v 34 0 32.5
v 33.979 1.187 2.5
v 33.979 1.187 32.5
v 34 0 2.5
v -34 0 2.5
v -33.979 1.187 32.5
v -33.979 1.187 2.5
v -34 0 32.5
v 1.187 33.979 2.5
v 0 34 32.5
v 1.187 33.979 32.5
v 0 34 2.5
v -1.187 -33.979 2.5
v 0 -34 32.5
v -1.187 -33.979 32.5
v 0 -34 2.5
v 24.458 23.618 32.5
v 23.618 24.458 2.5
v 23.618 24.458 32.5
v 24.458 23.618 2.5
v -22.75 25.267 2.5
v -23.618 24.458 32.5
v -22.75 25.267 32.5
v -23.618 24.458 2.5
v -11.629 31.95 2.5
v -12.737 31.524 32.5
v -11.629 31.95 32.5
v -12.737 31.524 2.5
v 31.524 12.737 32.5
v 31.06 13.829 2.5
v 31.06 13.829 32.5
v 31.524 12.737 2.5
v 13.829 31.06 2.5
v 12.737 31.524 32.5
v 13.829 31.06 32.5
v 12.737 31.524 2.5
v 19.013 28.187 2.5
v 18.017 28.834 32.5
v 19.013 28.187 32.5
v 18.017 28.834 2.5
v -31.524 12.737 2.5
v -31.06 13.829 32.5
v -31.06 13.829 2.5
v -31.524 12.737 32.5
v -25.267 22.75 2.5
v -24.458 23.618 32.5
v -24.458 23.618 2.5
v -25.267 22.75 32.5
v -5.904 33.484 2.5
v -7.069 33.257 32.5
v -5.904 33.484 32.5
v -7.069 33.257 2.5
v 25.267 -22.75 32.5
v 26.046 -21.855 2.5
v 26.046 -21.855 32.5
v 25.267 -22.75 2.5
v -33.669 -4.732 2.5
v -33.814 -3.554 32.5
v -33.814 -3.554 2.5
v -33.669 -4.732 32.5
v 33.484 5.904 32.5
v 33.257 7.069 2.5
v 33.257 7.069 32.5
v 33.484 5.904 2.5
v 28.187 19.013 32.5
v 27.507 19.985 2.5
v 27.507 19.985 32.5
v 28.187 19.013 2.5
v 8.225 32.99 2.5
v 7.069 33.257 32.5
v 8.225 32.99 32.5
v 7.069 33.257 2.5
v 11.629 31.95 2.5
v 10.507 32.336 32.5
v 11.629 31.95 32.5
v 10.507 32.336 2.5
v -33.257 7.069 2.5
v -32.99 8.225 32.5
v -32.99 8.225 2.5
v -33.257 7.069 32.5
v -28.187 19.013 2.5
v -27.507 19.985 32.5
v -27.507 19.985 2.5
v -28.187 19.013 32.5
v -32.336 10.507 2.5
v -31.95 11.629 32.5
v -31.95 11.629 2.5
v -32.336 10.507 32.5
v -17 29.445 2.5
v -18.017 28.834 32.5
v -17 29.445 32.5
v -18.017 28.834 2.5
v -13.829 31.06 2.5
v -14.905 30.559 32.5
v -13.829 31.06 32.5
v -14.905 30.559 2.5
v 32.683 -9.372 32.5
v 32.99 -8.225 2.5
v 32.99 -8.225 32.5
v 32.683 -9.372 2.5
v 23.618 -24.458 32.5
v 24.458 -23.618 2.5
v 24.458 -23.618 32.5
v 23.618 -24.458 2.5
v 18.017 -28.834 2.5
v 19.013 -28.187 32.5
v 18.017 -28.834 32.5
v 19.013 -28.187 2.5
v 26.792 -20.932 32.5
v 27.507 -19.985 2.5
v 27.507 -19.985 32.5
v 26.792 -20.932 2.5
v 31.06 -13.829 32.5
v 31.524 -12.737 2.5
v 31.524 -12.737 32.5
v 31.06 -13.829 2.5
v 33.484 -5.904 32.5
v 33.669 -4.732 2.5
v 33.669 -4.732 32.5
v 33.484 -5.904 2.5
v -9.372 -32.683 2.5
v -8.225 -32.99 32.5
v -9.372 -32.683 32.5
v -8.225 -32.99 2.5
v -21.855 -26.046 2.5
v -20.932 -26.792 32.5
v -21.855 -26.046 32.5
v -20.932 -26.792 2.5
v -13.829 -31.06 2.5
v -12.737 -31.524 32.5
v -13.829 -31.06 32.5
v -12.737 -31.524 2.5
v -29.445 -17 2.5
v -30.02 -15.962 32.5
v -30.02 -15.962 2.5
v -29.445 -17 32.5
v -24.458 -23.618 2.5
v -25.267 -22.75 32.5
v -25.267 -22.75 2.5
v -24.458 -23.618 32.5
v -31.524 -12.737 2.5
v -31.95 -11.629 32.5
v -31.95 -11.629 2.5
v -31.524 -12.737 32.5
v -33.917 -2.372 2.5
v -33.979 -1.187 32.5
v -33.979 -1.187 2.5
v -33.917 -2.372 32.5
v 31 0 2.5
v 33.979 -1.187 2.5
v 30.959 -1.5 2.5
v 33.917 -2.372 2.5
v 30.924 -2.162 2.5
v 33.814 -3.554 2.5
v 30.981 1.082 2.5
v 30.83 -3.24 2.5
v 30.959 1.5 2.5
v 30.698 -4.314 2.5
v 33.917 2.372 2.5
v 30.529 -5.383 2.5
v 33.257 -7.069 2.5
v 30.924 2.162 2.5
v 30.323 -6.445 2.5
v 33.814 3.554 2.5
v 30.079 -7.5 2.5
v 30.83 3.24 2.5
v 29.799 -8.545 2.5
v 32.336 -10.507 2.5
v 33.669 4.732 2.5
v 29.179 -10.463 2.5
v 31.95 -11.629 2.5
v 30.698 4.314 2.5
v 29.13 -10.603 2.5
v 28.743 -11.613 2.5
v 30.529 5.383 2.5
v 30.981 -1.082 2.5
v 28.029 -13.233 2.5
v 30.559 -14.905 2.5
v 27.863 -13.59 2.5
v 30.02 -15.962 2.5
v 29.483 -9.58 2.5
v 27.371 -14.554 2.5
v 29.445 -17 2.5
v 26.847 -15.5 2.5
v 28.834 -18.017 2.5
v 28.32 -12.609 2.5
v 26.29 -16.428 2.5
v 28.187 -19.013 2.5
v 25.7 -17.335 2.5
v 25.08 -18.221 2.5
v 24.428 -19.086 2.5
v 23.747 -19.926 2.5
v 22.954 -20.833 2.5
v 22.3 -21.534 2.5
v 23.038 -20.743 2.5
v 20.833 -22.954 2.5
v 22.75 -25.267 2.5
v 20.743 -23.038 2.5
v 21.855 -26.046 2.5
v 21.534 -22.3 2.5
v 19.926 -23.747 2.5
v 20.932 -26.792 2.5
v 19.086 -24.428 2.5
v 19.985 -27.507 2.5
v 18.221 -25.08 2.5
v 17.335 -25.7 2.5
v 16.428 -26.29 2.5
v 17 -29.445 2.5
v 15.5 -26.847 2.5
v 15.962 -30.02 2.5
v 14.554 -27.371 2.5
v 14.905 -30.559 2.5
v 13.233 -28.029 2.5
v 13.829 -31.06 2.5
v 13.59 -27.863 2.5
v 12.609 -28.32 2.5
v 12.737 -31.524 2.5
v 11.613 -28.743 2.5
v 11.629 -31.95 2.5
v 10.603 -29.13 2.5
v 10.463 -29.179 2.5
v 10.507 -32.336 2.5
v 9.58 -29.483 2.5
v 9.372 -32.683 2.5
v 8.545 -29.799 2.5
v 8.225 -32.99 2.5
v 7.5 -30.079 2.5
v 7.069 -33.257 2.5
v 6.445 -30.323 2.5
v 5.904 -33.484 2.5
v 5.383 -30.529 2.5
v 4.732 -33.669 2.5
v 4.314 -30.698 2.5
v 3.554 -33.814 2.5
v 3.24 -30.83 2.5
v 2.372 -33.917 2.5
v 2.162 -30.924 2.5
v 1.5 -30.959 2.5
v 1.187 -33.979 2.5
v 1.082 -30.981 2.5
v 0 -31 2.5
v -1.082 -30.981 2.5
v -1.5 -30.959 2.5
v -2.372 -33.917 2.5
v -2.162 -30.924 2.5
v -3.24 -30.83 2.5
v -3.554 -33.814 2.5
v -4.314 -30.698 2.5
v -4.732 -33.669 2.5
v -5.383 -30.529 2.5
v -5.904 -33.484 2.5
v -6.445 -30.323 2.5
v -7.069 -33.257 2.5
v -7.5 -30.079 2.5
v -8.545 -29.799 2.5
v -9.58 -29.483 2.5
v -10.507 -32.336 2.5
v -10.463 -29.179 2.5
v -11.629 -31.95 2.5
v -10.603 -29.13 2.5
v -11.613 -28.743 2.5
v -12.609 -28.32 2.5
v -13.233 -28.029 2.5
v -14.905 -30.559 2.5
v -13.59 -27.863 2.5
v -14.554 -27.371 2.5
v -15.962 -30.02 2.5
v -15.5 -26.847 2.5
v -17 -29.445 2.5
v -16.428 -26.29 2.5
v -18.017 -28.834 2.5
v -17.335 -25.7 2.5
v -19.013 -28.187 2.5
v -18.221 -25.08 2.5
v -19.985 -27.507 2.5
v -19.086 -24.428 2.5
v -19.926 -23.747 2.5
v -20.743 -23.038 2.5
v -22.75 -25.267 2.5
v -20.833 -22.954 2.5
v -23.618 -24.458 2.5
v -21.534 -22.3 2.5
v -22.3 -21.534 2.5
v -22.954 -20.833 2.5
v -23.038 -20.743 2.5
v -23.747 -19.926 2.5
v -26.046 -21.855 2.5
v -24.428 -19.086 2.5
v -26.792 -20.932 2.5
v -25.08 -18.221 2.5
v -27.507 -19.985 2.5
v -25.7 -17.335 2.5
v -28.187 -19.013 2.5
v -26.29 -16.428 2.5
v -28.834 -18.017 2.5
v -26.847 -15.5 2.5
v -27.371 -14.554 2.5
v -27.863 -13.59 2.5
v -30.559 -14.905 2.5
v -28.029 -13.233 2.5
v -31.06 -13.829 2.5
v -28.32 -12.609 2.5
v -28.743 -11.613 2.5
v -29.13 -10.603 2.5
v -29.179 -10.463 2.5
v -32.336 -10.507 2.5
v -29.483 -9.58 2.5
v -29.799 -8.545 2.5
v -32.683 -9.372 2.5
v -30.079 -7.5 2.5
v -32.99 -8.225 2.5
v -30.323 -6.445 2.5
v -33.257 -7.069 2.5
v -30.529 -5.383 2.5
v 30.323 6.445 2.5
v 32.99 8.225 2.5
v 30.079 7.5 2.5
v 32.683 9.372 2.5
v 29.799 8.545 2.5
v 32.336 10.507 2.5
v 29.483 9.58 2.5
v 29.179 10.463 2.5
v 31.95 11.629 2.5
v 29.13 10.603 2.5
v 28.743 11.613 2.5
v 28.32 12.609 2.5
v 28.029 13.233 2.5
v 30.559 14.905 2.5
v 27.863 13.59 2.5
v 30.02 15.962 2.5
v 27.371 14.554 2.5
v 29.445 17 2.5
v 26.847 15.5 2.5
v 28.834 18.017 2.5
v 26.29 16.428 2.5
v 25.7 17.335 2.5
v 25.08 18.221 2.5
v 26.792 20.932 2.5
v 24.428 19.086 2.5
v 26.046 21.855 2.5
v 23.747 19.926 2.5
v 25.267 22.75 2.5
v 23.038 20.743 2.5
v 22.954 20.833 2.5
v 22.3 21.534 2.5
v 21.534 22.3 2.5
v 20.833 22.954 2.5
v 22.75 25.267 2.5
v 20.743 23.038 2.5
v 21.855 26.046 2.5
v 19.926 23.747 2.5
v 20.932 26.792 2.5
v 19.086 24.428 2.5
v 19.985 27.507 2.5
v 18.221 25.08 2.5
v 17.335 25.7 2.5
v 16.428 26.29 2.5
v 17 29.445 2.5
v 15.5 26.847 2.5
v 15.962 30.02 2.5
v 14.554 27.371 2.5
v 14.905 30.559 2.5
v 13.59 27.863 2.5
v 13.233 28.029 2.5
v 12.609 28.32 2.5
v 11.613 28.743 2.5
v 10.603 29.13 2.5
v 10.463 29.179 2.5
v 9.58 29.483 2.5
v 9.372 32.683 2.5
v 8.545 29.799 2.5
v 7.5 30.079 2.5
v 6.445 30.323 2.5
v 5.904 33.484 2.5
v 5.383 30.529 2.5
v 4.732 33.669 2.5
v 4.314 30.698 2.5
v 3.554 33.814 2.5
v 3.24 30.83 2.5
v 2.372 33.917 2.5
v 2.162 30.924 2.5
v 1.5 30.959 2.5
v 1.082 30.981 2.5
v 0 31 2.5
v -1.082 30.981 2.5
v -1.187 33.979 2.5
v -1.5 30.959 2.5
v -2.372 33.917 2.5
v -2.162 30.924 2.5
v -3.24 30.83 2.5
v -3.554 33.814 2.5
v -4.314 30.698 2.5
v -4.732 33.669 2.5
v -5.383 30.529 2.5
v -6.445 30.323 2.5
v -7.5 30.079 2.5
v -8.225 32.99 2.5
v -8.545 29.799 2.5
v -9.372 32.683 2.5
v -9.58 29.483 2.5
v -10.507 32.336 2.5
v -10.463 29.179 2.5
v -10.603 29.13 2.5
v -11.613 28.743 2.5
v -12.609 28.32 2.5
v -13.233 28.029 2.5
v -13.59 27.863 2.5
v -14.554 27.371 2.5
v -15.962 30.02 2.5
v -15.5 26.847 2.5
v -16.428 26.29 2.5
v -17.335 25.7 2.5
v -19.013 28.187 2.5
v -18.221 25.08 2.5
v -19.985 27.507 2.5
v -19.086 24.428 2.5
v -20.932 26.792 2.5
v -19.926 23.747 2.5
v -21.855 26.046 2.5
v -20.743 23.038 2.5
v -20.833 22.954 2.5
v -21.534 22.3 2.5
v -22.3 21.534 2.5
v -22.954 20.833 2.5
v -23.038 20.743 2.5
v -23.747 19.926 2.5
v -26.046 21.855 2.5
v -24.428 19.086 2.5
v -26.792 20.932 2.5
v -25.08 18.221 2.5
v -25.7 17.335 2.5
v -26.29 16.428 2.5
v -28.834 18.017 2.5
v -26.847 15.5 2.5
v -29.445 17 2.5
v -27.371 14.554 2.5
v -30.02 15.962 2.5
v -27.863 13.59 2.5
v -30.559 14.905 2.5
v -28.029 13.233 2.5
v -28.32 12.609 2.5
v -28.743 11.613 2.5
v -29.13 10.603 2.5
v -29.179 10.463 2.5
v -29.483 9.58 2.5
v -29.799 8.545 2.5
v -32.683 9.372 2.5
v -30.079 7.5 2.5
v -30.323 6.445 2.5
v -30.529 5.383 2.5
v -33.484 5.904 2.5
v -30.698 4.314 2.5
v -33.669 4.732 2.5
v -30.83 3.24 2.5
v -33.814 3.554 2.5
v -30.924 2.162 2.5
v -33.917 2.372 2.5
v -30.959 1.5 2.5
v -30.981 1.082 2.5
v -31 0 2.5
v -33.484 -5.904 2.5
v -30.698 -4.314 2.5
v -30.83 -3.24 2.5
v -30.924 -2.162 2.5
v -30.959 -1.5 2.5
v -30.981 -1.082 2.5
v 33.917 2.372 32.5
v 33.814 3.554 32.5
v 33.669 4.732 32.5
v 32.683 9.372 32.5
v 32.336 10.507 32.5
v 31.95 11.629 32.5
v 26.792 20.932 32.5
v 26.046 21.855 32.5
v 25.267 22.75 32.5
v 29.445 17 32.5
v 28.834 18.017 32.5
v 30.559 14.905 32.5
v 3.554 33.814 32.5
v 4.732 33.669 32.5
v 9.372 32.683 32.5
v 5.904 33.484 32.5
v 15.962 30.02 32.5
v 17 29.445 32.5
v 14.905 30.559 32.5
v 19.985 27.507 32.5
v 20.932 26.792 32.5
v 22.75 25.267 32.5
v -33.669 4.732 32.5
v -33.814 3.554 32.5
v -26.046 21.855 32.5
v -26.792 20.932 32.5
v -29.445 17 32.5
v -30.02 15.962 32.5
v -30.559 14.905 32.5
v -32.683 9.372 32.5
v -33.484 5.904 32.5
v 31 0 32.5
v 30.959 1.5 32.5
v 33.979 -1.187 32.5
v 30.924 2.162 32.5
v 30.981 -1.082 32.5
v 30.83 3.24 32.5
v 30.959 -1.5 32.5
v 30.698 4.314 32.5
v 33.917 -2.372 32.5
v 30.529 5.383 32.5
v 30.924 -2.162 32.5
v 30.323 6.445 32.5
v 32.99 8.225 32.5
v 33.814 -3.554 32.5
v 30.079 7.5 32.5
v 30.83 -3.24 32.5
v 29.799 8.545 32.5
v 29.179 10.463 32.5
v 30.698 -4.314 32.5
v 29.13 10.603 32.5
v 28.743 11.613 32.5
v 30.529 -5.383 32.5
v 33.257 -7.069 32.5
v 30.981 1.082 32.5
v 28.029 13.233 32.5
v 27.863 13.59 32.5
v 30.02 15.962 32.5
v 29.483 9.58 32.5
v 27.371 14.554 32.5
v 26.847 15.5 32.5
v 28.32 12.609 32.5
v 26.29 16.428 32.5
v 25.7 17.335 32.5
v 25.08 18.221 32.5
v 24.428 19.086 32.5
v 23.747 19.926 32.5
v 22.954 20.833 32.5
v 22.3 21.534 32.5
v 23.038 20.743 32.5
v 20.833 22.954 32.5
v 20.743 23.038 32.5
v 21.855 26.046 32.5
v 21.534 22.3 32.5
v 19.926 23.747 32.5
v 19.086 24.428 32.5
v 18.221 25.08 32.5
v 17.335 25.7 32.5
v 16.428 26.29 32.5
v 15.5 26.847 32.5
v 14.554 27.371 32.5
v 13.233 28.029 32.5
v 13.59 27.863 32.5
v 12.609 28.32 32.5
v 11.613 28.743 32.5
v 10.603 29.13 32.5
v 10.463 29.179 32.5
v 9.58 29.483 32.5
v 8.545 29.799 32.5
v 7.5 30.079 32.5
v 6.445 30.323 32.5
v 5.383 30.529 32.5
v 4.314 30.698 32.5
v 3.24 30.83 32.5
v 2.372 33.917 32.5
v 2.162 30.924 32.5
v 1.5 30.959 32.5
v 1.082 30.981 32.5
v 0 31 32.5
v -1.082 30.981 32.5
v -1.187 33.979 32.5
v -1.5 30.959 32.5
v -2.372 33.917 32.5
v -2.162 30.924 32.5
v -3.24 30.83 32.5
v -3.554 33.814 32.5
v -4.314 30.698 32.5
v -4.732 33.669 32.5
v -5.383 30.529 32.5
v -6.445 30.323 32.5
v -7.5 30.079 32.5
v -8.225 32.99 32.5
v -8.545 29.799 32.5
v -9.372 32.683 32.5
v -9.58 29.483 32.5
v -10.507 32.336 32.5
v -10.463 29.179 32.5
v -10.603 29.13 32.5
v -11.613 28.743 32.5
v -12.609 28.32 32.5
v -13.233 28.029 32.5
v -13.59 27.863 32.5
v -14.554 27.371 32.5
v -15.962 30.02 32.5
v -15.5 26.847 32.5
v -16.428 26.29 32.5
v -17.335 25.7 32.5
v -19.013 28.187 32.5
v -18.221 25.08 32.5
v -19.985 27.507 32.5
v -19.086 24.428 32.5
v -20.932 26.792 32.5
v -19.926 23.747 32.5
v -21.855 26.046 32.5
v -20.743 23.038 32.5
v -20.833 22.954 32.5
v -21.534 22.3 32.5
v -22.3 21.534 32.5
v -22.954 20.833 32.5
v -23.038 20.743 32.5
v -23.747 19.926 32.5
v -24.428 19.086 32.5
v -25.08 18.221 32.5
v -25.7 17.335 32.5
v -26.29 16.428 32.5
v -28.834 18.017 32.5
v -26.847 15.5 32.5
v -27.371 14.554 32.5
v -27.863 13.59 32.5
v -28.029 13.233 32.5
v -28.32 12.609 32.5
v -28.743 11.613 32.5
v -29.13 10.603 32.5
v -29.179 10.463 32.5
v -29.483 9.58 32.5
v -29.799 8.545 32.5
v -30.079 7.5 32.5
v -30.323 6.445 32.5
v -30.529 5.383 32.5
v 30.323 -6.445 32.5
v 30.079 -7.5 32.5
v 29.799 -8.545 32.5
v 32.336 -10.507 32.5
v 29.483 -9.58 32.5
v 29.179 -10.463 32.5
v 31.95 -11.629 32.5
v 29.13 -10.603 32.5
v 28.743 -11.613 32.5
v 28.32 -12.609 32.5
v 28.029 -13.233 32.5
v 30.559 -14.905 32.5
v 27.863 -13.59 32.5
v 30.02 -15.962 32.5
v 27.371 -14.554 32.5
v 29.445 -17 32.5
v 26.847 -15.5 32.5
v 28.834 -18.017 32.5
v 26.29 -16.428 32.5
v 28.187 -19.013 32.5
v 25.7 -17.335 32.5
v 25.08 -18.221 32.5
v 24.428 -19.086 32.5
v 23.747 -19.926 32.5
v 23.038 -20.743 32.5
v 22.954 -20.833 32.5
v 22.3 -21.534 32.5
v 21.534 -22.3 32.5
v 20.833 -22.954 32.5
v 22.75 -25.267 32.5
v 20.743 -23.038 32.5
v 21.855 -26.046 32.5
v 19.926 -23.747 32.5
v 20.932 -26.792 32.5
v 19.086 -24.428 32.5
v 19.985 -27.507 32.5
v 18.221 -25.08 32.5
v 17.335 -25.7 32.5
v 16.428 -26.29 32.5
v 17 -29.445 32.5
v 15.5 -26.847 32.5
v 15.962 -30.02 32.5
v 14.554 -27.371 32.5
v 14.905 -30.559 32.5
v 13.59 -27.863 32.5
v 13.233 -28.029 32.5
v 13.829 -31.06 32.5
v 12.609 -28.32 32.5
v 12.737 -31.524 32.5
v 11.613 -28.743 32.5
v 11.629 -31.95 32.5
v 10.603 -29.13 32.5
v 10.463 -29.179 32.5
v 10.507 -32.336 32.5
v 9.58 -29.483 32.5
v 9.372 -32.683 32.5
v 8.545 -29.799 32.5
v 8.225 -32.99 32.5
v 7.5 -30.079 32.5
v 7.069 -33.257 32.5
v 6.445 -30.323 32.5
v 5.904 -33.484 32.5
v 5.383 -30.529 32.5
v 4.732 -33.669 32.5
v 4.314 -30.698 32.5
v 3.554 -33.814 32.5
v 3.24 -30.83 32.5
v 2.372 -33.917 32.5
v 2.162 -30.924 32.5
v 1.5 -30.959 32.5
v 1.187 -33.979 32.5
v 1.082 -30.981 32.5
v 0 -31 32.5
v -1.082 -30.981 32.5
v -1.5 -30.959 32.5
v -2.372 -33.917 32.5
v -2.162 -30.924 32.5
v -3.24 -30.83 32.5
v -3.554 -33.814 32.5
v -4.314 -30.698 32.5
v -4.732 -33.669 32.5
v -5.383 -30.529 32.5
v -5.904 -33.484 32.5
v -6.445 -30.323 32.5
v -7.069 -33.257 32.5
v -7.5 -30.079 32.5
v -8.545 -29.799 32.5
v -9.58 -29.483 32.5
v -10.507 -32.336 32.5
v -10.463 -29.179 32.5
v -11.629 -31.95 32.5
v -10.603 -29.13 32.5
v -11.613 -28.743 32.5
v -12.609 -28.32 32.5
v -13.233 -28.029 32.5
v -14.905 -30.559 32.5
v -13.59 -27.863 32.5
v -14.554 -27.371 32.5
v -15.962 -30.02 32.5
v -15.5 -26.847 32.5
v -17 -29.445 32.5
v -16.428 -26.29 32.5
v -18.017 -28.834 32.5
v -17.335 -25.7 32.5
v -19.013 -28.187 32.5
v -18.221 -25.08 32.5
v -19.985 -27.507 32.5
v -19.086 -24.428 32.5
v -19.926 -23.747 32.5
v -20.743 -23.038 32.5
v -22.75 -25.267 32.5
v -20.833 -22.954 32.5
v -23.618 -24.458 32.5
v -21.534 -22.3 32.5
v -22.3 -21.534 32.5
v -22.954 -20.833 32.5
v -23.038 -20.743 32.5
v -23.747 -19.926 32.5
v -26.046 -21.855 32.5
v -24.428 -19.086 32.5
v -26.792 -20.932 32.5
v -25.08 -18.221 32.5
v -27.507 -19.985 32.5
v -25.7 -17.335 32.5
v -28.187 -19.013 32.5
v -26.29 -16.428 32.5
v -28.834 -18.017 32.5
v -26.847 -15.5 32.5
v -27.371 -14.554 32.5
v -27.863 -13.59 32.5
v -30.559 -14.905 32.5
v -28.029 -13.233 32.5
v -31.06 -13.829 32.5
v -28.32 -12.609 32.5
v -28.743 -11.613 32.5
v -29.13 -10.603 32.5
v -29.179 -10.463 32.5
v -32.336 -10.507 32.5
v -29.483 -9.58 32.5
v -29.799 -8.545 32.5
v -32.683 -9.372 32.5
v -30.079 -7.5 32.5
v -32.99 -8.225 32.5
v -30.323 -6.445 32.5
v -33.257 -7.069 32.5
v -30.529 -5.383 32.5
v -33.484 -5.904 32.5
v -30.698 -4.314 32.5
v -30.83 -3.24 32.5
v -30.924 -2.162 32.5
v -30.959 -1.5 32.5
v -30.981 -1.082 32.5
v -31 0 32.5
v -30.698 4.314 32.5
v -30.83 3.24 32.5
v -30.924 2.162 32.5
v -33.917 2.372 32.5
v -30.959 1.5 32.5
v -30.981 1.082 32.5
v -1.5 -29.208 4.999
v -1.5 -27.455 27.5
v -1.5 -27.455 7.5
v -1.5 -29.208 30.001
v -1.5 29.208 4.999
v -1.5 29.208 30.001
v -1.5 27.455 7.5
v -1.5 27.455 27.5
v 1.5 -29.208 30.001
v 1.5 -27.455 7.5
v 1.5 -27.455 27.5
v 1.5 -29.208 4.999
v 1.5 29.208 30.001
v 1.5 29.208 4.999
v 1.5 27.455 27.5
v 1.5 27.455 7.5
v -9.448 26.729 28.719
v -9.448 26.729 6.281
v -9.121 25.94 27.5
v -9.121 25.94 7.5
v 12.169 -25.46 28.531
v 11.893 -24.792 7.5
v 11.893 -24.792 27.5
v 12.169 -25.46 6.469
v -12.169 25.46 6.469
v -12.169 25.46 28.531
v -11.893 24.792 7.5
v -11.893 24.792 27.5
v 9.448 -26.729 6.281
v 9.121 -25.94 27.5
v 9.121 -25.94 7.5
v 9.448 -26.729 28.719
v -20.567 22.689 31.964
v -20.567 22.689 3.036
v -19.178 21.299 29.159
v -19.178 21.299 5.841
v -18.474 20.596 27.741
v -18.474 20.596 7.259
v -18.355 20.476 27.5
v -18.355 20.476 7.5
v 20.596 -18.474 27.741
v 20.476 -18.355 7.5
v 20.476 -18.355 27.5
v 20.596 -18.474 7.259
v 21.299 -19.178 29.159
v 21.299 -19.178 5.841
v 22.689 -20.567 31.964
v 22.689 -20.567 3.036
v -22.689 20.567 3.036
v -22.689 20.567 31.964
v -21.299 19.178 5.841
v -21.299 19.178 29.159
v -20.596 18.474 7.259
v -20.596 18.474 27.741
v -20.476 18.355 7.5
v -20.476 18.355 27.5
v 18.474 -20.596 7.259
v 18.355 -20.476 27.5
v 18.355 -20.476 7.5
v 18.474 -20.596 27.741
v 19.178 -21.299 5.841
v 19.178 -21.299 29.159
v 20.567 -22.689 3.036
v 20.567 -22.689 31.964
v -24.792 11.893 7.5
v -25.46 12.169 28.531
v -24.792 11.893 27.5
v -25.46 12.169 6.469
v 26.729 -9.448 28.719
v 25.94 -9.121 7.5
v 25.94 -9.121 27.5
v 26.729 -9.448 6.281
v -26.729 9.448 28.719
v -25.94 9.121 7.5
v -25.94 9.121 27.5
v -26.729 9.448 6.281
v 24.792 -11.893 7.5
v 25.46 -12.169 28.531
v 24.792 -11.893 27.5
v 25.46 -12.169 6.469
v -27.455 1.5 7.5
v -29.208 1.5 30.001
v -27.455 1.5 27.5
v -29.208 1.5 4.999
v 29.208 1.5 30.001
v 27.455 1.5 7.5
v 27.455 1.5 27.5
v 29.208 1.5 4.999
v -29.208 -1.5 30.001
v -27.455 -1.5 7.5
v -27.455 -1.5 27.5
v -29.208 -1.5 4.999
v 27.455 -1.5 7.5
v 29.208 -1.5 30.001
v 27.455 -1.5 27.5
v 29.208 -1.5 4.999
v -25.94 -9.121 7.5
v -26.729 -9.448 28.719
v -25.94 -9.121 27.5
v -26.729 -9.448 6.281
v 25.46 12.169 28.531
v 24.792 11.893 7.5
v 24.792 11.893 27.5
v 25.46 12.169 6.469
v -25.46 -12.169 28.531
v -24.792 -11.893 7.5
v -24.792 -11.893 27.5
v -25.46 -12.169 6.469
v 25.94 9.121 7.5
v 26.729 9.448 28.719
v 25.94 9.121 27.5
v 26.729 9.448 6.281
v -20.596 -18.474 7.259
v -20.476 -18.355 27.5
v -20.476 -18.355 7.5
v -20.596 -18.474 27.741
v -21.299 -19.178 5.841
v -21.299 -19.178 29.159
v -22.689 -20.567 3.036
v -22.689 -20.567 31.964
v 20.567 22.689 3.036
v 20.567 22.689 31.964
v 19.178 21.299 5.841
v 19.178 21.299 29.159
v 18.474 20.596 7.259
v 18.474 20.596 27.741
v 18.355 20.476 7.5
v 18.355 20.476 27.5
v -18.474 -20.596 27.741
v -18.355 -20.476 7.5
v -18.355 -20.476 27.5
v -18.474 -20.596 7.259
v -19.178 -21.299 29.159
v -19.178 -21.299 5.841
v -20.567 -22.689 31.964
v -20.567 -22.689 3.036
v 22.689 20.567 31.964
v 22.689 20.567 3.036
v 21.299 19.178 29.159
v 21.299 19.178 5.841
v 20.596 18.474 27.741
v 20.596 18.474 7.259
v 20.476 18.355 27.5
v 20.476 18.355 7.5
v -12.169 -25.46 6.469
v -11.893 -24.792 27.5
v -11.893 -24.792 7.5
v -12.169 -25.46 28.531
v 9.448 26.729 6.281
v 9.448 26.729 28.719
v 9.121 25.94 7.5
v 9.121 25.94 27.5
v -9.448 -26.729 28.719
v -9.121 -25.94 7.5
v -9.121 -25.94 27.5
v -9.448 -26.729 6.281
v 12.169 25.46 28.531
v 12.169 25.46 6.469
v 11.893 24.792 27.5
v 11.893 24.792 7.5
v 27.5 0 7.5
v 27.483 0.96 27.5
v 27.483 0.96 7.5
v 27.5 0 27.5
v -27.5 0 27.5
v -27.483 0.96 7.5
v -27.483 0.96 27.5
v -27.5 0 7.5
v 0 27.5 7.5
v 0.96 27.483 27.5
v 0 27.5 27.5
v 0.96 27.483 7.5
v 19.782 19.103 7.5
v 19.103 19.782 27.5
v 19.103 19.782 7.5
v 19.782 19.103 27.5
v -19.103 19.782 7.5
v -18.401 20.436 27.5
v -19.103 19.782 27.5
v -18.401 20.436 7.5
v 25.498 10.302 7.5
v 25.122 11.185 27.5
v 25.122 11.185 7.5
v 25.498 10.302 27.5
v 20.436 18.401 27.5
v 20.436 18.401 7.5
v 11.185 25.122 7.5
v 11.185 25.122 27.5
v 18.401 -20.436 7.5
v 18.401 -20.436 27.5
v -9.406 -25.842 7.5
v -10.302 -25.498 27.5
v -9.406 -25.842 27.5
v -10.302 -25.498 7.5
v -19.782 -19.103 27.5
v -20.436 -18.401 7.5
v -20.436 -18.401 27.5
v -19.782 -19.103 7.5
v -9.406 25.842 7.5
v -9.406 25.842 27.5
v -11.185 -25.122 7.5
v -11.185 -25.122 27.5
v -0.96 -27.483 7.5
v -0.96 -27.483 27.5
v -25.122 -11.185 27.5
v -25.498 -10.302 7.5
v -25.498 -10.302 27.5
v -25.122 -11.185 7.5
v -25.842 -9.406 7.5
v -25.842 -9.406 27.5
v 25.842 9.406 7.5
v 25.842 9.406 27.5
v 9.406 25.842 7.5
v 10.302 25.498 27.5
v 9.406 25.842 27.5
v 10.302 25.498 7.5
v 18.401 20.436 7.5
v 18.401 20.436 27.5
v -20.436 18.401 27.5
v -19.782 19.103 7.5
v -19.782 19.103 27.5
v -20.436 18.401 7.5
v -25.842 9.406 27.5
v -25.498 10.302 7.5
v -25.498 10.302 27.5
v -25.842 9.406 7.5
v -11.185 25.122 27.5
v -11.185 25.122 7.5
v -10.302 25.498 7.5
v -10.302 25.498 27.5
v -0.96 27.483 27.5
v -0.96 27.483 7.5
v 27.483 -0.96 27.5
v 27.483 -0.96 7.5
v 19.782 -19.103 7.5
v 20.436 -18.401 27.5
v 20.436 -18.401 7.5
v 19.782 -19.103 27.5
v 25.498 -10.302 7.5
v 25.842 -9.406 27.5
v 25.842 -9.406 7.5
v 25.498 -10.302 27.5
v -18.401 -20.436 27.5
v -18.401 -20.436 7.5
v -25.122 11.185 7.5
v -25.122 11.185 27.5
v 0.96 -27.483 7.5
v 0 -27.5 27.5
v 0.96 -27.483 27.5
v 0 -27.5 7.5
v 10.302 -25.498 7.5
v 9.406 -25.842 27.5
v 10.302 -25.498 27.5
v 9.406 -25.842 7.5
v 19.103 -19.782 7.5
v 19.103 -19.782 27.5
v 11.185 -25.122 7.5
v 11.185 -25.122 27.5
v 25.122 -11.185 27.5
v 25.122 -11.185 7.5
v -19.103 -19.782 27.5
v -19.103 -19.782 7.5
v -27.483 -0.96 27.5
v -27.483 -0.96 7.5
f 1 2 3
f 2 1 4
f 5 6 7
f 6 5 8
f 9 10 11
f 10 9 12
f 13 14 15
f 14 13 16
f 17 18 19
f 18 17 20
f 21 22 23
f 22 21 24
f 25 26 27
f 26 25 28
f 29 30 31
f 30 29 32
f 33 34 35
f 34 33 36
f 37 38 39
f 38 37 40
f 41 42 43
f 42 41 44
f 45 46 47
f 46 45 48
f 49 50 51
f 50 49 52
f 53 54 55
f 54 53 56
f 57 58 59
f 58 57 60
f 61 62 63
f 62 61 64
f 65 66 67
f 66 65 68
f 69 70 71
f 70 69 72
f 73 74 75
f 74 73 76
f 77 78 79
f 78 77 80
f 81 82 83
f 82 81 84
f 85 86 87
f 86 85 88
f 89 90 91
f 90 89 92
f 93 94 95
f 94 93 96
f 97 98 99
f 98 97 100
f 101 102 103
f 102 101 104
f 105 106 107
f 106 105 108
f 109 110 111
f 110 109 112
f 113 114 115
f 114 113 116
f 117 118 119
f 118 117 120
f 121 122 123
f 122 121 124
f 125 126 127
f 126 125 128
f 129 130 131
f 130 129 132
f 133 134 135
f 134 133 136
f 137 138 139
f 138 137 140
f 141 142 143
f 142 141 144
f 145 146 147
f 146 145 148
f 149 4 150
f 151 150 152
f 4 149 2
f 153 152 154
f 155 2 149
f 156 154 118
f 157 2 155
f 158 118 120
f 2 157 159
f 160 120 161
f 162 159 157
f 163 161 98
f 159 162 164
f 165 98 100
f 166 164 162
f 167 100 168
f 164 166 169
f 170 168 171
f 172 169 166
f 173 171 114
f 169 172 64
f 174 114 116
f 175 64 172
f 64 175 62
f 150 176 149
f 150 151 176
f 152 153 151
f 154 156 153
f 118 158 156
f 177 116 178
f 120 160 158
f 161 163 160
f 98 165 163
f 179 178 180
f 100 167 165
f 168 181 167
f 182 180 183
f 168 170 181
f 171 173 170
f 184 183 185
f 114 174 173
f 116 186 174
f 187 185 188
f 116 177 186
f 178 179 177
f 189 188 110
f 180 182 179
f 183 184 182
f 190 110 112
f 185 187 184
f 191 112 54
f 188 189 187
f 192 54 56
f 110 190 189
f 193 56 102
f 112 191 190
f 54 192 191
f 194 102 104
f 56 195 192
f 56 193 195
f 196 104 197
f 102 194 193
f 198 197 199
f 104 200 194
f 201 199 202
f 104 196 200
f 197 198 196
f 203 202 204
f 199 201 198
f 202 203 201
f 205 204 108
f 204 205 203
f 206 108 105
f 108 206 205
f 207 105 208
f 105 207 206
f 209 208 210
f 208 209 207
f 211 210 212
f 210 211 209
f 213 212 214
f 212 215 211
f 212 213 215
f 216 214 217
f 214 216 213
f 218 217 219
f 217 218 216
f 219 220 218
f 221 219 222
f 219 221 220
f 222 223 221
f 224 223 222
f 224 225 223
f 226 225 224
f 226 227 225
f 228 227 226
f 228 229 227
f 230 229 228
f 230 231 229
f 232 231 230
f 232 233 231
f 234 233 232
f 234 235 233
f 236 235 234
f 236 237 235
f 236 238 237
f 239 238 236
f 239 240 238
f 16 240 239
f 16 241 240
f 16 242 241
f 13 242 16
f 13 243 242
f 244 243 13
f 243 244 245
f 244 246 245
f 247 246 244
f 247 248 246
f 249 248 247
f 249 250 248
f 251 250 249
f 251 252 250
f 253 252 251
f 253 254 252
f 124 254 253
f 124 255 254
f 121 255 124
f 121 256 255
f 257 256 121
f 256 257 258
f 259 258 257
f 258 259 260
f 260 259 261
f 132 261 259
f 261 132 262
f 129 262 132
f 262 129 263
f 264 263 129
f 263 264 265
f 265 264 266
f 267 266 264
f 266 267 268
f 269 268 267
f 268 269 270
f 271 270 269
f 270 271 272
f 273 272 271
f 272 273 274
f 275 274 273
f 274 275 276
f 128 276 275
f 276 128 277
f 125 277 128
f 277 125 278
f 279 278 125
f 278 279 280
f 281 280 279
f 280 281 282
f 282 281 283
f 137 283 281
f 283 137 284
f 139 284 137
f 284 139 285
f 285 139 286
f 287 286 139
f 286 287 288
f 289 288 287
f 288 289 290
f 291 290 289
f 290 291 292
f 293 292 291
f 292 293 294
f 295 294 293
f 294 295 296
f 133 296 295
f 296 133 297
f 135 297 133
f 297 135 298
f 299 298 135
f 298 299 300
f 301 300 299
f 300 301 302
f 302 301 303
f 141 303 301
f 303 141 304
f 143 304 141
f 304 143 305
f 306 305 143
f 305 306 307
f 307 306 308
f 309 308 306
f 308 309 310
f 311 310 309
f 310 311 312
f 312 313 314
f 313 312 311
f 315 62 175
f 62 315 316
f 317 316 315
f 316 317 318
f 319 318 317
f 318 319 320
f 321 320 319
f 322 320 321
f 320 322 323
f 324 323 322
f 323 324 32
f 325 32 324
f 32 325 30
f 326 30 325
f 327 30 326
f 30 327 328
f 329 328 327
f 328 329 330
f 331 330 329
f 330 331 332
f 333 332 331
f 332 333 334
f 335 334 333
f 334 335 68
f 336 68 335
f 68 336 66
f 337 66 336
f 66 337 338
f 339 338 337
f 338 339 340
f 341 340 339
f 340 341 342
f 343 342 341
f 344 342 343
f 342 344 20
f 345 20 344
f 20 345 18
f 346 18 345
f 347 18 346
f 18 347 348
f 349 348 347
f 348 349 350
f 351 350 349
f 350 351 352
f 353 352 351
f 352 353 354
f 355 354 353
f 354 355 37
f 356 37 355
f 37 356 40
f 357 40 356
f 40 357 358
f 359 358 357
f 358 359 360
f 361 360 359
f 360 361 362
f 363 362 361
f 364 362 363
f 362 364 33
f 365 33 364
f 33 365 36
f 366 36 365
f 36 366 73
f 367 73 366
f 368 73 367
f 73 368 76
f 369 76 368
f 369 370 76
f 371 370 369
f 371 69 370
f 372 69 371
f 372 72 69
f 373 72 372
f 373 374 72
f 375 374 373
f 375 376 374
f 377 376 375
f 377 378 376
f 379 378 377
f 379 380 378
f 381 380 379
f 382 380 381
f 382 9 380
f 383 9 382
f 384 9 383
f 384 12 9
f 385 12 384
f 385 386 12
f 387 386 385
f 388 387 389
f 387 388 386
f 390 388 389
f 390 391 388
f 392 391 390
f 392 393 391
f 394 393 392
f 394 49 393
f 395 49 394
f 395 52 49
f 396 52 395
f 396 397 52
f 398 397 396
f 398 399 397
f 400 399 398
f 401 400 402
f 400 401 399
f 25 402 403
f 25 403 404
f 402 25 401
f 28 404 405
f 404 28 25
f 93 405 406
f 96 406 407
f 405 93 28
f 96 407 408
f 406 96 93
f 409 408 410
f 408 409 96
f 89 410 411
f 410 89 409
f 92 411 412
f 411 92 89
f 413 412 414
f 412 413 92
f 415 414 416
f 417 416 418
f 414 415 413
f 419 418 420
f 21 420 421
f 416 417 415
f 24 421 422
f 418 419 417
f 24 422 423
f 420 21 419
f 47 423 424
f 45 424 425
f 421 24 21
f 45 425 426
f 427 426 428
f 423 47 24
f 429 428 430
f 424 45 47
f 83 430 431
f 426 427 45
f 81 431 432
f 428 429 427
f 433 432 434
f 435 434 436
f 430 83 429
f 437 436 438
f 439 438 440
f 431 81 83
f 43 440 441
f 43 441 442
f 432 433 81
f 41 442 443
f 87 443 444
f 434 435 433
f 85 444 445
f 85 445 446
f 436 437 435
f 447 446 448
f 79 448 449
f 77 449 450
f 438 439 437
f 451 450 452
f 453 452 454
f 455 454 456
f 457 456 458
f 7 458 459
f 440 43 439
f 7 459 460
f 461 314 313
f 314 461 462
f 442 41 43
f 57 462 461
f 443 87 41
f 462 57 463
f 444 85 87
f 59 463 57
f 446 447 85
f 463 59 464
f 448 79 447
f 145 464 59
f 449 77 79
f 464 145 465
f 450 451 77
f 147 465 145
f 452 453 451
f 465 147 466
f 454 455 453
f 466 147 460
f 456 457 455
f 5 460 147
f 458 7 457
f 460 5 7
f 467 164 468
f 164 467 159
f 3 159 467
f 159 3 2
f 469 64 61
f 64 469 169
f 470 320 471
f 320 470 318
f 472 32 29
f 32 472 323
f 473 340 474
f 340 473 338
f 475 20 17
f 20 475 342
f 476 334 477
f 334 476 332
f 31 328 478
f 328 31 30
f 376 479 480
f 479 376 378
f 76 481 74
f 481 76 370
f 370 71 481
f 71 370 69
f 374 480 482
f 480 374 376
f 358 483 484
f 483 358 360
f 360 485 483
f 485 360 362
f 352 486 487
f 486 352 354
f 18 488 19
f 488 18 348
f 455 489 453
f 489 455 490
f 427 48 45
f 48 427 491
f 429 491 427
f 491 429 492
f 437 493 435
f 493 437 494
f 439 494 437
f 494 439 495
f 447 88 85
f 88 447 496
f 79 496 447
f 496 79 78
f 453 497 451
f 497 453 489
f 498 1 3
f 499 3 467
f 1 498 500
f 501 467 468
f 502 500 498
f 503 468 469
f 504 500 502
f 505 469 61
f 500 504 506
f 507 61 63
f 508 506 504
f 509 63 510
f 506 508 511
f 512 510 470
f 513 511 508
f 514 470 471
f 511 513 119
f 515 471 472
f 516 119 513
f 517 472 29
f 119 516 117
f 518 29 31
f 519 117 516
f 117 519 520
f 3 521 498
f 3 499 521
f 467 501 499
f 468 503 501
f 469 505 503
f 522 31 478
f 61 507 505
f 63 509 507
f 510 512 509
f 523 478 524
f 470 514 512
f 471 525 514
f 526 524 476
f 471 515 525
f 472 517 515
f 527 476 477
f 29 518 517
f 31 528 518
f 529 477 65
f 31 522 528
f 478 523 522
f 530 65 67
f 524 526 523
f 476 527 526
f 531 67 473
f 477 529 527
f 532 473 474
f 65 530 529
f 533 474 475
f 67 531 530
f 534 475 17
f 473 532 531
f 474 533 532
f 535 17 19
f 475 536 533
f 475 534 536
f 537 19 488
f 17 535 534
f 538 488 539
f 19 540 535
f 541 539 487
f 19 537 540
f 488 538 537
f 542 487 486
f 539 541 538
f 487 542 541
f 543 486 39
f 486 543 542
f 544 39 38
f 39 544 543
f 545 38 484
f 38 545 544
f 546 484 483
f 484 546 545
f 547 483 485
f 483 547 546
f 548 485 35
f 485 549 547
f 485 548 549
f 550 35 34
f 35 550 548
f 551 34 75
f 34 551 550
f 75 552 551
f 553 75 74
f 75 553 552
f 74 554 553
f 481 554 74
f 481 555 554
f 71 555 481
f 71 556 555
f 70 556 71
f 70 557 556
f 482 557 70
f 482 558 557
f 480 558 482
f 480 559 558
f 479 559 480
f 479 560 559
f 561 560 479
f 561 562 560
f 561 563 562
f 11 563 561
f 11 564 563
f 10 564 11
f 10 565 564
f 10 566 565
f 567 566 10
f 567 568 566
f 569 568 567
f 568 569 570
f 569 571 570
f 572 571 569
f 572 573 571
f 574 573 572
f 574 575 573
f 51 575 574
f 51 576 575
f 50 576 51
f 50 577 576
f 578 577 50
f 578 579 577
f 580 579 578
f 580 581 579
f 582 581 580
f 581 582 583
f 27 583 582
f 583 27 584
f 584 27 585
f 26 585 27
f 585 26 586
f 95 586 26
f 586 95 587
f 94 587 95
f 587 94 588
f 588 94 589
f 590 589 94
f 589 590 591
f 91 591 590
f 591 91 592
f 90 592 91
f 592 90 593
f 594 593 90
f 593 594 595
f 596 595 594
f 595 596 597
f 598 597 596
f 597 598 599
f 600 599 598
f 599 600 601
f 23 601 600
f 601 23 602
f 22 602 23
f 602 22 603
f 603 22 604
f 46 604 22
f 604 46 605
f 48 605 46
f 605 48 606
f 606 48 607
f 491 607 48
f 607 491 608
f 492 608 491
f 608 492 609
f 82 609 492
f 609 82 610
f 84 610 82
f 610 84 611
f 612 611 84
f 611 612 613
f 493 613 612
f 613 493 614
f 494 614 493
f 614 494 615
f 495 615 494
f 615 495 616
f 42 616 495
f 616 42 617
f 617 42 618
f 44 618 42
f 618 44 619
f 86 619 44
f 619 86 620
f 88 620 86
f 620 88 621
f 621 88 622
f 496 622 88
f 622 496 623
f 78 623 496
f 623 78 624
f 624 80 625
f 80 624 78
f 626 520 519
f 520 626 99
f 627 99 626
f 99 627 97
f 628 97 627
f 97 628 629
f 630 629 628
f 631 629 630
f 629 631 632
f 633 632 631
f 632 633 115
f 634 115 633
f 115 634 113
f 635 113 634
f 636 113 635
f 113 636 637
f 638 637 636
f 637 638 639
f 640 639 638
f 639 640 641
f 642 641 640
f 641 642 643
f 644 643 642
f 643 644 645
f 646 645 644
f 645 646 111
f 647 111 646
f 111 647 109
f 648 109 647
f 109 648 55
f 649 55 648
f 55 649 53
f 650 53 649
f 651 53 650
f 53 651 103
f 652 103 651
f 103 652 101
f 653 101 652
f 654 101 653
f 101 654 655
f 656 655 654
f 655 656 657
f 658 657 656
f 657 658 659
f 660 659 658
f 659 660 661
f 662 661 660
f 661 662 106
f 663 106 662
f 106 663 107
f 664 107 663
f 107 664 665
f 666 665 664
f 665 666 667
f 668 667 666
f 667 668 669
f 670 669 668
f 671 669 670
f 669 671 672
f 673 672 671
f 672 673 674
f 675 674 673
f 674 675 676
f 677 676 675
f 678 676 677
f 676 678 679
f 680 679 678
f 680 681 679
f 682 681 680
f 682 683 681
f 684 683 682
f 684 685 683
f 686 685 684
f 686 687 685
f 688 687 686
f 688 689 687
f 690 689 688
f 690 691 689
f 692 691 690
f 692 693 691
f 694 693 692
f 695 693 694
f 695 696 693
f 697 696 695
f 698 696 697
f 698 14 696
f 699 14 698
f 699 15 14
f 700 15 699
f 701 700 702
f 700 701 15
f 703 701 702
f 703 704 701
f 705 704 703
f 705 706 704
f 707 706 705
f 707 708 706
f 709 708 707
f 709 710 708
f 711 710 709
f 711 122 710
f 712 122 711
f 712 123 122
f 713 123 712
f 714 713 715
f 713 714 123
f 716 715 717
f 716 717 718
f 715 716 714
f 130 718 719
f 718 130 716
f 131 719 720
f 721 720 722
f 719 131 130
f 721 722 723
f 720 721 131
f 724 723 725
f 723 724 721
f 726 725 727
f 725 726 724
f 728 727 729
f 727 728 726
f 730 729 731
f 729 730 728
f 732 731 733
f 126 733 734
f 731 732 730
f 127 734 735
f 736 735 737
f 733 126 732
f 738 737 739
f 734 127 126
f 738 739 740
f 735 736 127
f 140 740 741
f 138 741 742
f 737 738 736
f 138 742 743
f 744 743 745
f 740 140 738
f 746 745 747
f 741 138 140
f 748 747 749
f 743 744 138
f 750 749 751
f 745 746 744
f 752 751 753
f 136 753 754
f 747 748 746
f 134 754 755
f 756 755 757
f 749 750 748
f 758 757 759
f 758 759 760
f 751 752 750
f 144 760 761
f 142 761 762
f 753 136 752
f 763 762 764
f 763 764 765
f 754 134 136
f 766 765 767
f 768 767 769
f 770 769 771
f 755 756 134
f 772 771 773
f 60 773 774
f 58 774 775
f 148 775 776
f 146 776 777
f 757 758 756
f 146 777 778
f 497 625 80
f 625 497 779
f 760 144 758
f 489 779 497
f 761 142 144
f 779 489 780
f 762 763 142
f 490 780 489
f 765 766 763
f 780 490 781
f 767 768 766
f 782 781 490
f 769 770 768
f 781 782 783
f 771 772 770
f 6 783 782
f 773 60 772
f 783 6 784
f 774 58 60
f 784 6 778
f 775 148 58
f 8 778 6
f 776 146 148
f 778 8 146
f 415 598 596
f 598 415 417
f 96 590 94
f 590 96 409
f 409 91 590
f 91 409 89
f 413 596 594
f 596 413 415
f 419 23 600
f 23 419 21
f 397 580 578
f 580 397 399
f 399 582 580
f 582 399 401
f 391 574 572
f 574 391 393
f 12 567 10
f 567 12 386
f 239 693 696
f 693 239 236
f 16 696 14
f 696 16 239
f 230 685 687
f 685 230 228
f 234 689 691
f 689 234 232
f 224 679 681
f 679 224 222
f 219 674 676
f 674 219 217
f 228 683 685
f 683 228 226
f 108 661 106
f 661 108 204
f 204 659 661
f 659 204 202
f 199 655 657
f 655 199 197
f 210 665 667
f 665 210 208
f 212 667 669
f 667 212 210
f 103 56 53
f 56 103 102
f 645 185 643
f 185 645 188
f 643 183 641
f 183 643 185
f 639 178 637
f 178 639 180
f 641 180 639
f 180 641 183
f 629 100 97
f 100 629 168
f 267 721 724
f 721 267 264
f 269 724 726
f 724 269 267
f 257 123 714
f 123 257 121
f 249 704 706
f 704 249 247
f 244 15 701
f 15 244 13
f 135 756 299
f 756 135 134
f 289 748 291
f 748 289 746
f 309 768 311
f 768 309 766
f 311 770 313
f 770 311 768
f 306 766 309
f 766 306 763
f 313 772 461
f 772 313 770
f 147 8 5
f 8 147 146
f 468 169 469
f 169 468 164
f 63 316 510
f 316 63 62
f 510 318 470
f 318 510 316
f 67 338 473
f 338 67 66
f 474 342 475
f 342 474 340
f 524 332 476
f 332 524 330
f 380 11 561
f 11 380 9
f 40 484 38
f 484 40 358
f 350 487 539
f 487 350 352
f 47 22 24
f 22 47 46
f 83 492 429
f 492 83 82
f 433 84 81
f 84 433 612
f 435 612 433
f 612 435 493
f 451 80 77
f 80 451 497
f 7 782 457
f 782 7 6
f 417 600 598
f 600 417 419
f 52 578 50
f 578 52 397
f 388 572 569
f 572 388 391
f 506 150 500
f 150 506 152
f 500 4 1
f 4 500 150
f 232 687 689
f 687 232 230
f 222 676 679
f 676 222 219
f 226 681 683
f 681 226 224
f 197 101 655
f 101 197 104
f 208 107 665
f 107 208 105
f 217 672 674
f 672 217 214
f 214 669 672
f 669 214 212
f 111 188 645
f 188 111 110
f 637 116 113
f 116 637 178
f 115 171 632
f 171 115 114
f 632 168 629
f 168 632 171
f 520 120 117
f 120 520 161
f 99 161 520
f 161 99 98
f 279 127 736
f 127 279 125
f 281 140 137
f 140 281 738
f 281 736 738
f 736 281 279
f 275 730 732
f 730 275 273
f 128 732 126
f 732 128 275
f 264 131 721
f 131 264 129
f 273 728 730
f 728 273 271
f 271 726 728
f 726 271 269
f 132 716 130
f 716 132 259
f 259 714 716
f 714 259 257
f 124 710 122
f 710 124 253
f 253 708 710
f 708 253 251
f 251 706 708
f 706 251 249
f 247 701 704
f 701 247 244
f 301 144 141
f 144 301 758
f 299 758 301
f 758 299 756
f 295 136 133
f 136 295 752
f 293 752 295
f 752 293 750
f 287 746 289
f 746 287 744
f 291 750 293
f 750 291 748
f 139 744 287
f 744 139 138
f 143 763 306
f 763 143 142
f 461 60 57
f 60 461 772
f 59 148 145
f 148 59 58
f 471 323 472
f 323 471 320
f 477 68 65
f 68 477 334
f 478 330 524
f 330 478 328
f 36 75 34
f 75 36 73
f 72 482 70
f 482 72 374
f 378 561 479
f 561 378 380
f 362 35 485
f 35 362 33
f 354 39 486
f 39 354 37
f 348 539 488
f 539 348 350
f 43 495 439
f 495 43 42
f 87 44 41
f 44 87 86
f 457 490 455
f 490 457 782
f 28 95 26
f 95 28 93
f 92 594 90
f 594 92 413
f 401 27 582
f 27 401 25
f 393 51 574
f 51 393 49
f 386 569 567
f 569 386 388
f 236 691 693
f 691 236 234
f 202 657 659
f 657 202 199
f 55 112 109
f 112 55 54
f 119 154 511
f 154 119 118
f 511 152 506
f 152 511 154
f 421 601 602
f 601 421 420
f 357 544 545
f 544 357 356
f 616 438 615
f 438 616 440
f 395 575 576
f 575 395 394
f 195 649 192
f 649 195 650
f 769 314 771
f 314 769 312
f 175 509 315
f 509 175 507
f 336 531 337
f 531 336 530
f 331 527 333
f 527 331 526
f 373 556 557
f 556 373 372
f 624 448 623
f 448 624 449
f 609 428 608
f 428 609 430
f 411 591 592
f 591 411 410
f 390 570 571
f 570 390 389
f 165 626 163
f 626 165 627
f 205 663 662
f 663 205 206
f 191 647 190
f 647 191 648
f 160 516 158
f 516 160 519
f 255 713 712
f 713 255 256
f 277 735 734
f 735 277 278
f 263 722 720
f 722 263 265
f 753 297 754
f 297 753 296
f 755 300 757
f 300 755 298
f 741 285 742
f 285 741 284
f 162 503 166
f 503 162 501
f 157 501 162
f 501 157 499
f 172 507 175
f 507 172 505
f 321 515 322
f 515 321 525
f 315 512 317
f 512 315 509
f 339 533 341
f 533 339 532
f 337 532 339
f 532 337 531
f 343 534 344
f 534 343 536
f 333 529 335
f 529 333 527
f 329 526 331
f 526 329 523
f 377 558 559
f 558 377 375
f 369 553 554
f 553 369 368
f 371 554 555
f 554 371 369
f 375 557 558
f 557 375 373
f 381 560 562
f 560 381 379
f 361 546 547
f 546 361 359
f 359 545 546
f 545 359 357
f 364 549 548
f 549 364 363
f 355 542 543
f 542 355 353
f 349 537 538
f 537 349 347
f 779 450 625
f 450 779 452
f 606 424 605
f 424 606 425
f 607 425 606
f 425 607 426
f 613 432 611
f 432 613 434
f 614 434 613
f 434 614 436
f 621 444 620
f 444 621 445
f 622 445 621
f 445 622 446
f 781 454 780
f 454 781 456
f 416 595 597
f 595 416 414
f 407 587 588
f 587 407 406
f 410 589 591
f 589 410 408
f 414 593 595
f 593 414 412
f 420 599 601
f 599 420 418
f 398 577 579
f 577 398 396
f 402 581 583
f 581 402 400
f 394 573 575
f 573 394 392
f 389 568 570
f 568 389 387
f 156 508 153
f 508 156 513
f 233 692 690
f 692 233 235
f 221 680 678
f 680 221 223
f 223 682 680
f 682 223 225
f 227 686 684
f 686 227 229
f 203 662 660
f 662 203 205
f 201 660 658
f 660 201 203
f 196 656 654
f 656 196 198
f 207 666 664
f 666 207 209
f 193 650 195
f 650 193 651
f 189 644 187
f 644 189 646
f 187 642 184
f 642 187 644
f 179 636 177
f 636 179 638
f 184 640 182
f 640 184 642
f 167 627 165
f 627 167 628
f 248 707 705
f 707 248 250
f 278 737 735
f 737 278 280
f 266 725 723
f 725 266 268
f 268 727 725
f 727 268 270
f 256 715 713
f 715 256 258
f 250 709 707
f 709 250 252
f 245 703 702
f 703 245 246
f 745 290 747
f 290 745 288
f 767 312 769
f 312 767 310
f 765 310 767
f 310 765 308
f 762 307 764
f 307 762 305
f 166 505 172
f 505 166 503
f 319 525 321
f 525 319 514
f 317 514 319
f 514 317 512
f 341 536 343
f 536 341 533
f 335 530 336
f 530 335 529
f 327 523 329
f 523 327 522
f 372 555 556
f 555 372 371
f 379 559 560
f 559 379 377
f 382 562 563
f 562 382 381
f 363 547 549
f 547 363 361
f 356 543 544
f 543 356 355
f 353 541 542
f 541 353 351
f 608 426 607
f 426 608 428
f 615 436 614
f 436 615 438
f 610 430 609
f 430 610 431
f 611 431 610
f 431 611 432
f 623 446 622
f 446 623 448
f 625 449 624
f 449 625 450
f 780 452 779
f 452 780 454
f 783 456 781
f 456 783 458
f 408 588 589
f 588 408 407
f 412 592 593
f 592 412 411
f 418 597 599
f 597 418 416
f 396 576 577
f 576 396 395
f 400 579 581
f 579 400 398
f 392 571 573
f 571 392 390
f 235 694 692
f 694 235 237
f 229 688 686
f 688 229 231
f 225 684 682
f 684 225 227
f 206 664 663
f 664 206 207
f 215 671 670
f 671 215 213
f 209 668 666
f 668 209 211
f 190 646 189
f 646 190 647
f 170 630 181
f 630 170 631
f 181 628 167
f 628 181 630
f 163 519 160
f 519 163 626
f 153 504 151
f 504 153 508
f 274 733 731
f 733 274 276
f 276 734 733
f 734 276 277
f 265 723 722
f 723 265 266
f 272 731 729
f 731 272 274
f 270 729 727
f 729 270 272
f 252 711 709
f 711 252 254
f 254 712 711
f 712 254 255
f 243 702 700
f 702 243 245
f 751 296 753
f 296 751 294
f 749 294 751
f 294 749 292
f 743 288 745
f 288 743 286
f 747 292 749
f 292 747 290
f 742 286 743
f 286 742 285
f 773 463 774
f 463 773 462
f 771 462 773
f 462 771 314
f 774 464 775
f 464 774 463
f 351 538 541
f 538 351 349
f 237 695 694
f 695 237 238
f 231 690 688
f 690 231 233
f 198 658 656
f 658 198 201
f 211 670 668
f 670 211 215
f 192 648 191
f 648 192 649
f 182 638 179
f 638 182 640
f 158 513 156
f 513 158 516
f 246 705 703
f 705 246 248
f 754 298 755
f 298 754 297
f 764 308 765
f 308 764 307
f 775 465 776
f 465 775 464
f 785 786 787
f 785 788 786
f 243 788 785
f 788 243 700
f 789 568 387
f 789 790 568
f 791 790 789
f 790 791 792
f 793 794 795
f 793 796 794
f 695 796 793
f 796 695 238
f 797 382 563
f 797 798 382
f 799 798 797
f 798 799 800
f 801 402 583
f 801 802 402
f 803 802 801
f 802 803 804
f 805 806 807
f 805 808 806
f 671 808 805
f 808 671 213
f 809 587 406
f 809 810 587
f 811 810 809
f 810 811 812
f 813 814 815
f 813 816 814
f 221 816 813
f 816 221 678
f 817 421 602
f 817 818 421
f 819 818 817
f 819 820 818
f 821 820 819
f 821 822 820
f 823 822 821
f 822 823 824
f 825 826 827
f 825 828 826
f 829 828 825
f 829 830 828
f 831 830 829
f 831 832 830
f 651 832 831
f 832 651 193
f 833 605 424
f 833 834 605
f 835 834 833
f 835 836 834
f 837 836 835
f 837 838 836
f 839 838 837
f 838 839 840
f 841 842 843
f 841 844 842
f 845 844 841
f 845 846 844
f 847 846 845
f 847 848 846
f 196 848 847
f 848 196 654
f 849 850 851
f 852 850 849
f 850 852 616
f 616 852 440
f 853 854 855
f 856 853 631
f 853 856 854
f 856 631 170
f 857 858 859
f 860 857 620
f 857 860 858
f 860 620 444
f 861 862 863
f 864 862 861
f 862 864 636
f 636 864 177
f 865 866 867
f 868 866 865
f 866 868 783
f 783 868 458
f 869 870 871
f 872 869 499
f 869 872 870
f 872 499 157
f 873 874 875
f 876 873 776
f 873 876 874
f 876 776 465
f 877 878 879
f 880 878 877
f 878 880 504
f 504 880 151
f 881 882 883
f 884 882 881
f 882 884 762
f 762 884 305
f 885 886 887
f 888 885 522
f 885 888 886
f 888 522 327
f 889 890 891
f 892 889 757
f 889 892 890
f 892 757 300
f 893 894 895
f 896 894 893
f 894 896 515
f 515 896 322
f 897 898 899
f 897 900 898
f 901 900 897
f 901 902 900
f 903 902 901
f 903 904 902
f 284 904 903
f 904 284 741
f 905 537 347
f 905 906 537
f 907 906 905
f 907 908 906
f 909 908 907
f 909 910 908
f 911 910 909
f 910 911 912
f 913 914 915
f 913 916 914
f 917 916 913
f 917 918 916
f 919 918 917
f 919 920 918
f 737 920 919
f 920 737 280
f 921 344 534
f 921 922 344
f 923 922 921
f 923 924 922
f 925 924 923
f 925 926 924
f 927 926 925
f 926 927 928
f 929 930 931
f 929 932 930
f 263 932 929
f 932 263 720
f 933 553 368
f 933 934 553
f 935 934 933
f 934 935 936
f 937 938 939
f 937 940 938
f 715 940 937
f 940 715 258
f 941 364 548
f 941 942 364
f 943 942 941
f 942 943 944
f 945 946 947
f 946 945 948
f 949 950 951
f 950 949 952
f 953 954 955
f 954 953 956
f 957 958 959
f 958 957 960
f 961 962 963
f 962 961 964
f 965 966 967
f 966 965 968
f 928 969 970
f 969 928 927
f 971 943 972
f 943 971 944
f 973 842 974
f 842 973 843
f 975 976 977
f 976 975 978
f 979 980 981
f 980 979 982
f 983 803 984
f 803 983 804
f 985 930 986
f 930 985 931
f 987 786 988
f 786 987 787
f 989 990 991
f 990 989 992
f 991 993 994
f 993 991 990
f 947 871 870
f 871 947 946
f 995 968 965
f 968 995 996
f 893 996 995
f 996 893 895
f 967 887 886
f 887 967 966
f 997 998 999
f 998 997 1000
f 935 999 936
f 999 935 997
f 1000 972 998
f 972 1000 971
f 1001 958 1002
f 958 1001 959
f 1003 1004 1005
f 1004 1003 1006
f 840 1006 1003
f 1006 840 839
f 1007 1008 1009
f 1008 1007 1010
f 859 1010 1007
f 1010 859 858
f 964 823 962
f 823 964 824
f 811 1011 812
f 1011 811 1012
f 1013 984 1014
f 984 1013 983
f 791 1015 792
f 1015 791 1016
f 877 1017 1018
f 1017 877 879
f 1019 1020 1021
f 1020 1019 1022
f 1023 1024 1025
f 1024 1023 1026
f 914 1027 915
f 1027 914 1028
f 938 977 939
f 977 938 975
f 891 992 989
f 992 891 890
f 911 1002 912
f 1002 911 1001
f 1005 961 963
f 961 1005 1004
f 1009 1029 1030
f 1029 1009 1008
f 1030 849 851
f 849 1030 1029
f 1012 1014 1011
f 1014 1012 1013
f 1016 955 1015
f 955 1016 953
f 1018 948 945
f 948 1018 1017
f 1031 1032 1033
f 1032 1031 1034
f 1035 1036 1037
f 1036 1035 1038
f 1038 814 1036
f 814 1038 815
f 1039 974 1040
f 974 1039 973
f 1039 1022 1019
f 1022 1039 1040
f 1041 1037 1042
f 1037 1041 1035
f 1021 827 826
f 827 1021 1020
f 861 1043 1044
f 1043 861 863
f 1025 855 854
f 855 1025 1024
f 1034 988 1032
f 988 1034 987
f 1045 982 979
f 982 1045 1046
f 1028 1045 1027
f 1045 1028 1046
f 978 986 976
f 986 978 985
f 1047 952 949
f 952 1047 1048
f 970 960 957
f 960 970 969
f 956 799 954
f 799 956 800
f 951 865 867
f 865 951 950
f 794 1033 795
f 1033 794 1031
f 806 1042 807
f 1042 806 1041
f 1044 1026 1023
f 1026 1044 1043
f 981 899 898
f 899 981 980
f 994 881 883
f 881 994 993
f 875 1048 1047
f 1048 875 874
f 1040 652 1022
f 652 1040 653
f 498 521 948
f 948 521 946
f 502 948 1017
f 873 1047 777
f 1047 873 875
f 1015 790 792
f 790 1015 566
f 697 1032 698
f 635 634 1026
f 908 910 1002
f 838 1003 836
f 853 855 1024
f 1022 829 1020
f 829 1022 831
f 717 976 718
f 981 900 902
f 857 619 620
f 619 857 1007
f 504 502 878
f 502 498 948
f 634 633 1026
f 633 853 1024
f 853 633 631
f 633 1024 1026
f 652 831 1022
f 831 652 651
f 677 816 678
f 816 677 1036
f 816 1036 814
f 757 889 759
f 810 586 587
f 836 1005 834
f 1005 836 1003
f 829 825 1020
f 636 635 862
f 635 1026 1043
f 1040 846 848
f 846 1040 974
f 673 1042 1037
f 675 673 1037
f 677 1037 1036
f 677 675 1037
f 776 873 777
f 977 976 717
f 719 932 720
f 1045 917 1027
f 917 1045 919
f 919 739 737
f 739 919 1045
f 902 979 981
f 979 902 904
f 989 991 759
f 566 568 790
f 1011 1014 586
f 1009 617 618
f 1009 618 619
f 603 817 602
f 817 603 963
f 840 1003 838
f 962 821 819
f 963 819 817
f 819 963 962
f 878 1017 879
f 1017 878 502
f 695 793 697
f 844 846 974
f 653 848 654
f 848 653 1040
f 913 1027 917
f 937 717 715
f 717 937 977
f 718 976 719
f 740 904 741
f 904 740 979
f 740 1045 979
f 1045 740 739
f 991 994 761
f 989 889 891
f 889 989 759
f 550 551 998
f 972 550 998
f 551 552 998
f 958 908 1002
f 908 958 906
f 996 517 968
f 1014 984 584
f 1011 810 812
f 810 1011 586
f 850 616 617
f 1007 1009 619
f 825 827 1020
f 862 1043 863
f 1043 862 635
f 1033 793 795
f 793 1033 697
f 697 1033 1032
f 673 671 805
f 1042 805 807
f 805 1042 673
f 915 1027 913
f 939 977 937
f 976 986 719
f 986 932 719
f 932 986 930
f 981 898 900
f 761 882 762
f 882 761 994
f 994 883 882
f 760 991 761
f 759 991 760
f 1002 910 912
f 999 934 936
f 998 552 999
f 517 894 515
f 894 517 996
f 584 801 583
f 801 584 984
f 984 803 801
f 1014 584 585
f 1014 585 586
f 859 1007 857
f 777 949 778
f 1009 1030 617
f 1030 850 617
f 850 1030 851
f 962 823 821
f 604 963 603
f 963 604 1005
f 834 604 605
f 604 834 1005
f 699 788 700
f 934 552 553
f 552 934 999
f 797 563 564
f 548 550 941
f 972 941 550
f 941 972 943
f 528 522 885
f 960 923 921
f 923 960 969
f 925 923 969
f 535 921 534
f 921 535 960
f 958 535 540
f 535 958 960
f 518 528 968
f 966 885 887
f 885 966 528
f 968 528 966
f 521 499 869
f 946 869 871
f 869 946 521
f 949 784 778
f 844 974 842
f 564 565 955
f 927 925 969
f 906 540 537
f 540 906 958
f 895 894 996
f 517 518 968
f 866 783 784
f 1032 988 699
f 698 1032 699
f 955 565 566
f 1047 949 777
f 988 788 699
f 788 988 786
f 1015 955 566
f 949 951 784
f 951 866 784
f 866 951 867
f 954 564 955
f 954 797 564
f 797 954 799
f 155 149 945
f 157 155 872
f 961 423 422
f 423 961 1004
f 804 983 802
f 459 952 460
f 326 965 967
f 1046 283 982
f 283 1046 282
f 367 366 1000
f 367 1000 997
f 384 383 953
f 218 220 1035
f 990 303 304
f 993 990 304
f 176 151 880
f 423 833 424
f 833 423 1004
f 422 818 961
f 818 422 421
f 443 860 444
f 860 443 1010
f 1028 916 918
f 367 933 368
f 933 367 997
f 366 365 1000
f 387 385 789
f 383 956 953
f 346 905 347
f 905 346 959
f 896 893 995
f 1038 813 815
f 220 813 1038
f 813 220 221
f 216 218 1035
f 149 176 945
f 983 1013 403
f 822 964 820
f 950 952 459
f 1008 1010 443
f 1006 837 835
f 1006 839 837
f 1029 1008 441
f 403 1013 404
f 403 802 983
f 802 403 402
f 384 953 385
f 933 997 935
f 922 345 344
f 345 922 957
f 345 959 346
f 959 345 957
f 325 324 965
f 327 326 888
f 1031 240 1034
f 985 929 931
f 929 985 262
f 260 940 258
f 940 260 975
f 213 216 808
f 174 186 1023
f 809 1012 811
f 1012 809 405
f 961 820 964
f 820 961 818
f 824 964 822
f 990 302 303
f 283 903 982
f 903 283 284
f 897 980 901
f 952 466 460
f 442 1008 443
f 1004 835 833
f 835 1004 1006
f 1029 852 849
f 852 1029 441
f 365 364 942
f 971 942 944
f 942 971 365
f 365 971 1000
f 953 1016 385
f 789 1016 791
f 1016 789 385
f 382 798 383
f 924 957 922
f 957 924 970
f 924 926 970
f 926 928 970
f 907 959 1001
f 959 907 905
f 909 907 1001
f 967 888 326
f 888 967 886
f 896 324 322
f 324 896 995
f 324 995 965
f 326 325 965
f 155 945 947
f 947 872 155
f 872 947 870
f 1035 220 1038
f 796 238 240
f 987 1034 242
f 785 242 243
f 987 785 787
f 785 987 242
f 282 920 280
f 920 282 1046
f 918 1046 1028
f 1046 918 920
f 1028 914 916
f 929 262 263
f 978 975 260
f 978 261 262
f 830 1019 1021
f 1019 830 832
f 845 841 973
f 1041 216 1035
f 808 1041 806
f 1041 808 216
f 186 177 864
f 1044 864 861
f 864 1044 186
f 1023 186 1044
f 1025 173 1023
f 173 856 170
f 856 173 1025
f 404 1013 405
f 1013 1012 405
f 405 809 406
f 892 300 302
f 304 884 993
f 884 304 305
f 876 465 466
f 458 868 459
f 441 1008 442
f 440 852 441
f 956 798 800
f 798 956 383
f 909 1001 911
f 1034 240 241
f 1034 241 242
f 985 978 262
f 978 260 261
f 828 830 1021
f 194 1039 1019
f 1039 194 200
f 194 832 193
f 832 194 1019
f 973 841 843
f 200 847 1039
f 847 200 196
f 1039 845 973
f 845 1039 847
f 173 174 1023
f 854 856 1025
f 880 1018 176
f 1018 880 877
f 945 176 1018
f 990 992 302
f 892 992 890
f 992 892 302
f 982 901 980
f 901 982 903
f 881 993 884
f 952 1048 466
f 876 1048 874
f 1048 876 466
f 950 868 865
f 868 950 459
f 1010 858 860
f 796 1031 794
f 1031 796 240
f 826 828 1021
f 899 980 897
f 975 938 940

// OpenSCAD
/////////////////////////////////////////////////////////////////
//Printing notes
/////////////////////////////////////////////////////////////////

//infill = 100%
//material = generic TPU 95

////////////////////////////////////////////////////////////////






A = 180;        //Large  circle resolution




difference(){
translate([0,0,17.5])cylinder(h = 30, d=68, $fn = A, center = true);

translate([0,0,17.5])cylinder(h = 31, d=62, $fn = A, center = true);

}

difference(){
for(i=[0:7]) translate([0,0,17.5]) rotate([0,0,i*45/2]) cube([3,62,30], center = true);
    
translate([0,0,17.5]) cylinder(h = 31, d=55, $fn = A, center = true);




translate([0,0,30]) cylinder(h = 5, d2=62, d1=55, $fn = A, center = true); 
    
translate([0,0,5]) cylinder(h = 5, d1=62, d2=55, $fn = A, center = true);  

}
